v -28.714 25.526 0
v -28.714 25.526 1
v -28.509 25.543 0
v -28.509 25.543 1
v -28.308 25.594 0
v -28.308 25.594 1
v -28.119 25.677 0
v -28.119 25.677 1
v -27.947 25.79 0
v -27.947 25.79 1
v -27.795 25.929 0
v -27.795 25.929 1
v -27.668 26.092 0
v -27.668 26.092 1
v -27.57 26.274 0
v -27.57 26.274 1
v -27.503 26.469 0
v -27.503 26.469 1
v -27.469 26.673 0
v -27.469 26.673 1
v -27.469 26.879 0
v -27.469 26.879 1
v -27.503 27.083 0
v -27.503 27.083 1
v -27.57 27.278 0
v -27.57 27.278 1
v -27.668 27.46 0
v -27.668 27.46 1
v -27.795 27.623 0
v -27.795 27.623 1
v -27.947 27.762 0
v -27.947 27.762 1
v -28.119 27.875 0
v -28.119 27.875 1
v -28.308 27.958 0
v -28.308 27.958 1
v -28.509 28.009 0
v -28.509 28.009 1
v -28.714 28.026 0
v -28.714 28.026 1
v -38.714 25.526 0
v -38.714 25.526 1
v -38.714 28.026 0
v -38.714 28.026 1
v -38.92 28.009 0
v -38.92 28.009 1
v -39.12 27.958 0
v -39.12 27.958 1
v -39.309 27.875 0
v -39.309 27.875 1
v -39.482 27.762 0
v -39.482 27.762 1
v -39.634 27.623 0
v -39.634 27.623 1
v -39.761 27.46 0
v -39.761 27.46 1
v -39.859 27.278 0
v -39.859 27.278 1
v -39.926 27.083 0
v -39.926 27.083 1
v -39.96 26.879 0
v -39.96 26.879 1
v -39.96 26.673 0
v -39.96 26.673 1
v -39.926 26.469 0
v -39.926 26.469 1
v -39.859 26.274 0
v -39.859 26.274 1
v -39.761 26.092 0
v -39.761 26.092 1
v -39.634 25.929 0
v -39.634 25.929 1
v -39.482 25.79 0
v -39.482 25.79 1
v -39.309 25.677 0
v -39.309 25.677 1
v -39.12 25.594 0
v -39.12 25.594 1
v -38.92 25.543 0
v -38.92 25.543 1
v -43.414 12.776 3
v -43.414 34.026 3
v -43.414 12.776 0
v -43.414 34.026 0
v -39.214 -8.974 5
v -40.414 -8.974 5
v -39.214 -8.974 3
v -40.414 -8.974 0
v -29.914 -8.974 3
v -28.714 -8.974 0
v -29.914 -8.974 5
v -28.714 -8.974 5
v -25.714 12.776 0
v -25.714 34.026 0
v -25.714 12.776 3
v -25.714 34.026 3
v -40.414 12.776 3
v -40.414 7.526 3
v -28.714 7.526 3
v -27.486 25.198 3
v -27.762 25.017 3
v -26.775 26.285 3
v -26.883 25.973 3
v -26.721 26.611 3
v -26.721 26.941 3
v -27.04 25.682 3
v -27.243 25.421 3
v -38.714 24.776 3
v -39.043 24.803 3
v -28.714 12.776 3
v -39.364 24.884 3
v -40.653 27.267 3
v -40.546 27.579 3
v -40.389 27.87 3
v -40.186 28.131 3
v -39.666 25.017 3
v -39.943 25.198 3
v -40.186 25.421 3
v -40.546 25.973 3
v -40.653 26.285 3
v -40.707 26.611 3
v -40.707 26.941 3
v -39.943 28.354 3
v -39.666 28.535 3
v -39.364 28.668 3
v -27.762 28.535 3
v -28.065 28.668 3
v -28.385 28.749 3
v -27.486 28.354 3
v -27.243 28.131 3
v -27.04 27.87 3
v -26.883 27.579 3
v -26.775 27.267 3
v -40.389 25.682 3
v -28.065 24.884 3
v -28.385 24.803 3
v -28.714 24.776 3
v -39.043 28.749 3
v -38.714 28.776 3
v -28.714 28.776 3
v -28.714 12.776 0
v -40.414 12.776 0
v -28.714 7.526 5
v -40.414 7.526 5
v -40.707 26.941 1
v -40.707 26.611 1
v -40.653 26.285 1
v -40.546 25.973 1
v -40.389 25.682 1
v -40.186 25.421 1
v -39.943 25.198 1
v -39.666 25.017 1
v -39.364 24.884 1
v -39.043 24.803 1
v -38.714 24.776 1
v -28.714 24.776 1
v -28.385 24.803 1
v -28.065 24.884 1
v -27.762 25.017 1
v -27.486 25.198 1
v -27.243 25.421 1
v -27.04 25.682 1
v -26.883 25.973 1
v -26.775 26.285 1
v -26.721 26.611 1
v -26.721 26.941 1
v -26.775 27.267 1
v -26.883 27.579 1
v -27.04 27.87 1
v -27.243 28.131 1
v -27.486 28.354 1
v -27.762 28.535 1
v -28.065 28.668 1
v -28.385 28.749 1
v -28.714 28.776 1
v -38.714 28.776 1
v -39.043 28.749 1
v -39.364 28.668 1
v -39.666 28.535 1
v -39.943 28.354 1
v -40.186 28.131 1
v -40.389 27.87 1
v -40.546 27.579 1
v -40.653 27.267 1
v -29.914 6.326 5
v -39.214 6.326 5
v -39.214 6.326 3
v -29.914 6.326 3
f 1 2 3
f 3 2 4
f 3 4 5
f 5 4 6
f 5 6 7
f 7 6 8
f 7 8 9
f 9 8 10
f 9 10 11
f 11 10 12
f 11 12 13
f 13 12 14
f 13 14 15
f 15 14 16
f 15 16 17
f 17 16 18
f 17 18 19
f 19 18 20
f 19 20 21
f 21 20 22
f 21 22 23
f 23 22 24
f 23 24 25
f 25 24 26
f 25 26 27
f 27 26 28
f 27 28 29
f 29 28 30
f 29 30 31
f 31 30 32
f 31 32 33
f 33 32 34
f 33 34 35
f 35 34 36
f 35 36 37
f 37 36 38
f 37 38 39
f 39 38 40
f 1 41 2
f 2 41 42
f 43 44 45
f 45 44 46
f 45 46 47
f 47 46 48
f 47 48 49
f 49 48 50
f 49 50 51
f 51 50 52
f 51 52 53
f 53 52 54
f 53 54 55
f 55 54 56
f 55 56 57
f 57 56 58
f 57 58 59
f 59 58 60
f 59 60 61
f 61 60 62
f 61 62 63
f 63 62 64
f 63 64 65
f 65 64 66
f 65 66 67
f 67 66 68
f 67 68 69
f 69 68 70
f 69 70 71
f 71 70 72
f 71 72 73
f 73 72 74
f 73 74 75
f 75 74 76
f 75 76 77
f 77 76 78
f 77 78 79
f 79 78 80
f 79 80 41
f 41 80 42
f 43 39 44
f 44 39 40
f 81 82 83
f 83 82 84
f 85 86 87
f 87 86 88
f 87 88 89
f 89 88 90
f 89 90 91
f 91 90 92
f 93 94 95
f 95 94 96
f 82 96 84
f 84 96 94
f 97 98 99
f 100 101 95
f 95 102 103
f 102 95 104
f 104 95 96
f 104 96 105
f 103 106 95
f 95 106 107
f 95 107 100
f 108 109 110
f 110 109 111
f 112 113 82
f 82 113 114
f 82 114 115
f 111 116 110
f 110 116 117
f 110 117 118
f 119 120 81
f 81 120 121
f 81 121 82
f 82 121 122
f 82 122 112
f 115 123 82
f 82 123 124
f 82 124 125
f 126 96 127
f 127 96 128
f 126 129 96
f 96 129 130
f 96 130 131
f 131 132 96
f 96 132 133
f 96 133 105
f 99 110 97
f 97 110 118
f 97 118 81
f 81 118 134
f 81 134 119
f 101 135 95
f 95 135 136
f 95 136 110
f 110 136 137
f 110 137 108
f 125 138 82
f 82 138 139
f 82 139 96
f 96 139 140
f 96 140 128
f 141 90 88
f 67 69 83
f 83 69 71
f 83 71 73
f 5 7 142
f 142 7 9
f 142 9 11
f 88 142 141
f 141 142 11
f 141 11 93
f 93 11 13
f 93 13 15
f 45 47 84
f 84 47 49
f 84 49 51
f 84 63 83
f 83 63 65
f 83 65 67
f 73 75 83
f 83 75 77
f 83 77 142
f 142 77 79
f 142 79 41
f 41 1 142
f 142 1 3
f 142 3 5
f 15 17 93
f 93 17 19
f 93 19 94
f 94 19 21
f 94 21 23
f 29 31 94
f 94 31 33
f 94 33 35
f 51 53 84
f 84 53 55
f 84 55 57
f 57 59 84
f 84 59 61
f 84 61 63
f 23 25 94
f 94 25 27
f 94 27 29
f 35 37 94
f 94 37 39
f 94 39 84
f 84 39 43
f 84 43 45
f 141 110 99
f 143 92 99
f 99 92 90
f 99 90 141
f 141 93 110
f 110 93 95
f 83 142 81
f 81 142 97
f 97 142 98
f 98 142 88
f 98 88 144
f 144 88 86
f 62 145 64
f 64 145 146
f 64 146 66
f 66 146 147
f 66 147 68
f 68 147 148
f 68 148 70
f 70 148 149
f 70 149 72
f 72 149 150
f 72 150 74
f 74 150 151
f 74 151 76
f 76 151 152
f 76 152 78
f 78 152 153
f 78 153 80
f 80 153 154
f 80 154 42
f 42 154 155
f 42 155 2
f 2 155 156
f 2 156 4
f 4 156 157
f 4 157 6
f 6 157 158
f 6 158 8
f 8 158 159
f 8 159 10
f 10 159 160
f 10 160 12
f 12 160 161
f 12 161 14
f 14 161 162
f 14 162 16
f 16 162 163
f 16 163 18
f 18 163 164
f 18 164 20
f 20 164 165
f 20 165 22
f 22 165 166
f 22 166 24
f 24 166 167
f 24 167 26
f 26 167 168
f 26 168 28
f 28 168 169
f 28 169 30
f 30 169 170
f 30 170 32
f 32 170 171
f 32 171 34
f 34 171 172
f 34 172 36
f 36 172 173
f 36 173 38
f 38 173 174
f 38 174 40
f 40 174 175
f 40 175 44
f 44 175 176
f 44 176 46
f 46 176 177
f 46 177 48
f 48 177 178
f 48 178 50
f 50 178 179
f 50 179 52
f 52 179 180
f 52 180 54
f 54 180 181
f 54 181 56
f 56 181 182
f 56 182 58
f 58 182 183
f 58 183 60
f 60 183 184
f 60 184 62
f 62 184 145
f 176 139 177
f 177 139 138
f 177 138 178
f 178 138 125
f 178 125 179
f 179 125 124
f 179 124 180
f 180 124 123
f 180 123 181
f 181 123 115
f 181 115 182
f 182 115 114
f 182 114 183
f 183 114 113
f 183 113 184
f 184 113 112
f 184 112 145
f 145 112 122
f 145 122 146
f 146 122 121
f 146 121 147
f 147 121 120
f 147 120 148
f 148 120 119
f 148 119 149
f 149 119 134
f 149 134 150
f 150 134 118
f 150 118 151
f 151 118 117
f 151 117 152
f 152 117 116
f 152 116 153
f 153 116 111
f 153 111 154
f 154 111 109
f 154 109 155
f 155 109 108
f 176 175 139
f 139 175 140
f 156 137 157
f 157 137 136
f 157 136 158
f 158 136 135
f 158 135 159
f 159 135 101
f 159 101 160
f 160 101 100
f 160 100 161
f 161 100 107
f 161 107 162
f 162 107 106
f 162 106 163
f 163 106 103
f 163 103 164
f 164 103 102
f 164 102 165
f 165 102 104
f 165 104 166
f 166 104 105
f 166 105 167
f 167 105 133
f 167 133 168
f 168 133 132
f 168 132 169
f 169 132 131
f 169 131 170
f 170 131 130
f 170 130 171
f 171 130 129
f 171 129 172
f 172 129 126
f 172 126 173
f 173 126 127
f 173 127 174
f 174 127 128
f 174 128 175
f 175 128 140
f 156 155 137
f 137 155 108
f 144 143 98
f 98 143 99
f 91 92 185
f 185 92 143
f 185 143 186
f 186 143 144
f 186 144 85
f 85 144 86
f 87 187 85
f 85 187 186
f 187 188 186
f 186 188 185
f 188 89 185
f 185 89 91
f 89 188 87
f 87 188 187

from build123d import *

# Parameters (mm, degrees)
SKETCH1_W           = 17.7
SKETCH1_H           = 43
BOSS_EXTRUDE1_DEPTH = 3
SKETCH2_W           = 3
SKETCH2_H           = 21.75
CUT_EXTRUDE1_DEPTH  = 56.240991234
CUT_EXTRUDE2_DEPTH  = 56.240991234
CUT_EXTRUDE3_DEPTH  = 2
SKETCH5_W           = 11.7
SKETCH5_H           = 16.5
BOSS_EXTRUDE2_DEPTH = 2
SKETCH6_W           = 9.3
SKETCH6_H           = 15.3
CUT_EXTRUDE4_DEPTH  = 2


with BuildPart() as part:
    # Sketch1 → Boss-Extrude1 (new body)
    with BuildSketch(Plane.XY):
        with Locations((-34.564285714, 12.525974026)):
            Rectangle(SKETCH1_W, SKETCH1_H)
    extrude(amount=BOSS_EXTRUDE1_DEPTH)

    # Sketch2 → Cut-Extrude1 (cut, through all)
    with BuildSketch(Plane.XY.offset(3)):
        with Locations((-41.914285714, 1.900974026)):
            Rectangle(SKETCH2_W, SKETCH2_H)
        with Locations((-27.214285714, 1.900974026)):
            Rectangle(SKETCH2_W, SKETCH2_H)
    extrude(amount=-CUT_EXTRUDE1_DEPTH, mode=Mode.SUBTRACT)

    # Sketch3 → Cut-Extrude2 (cut, through all)
    with BuildSketch(Plane.XY.offset(3)):
        with BuildLine():
            Line((-28.714285714, 25.525974026), (-38.714285714, 25.525974026))
            ThreePointArc((-38.714285714, 25.525974026), (-39.964285714, 26.775974026), (-38.714285714, 28.025974026))
            Line((-38.714285714, 28.025974026), (-28.714285714, 28.025974026))
            ThreePointArc((-28.714285714, 28.025974026), (-27.464285714, 26.775974026), (-28.714285714, 25.525974026))
        make_face()
    extrude(amount=-CUT_EXTRUDE2_DEPTH, mode=Mode.SUBTRACT)

    # Sketch4 → Cut-Extrude3 (cut)
    with BuildSketch(Plane.XY.offset(3)):
        with BuildLine():
            Line((-38.714285714, 28.775974026), (-28.714285714, 28.775974026))
            ThreePointArc((-28.714285714, 28.775974026), (-26.714285714, 26.775974026), (-28.714285714, 24.775974026))
            Line((-28.714285714, 24.775974026), (-38.714285714, 24.775974026))
            ThreePointArc((-38.714285714, 24.775974026), (-40.714285714, 26.775974026), (-38.714285714, 28.775974026))
        make_face()
    extrude(amount=-CUT_EXTRUDE3_DEPTH, mode=Mode.SUBTRACT)

    # Sketch5 → Boss-Extrude2 (add)
    with BuildSketch(Plane.XY.offset(3)):
        with Locations((-34.564285714, -0.724025974)):
            Rectangle(SKETCH5_W, SKETCH5_H)
    extrude(amount=BOSS_EXTRUDE2_DEPTH)

    # Sketch6 → Cut-Extrude4 (cut)
    with BuildSketch(Plane.XY.offset(5)):
        with Locations((-34.564285714, -1.324025974)):
            Rectangle(SKETCH6_W, SKETCH6_H)
    extrude(amount=-CUT_EXTRUDE4_DEPTH, mode=Mode.SUBTRACT)


solid = part.part
